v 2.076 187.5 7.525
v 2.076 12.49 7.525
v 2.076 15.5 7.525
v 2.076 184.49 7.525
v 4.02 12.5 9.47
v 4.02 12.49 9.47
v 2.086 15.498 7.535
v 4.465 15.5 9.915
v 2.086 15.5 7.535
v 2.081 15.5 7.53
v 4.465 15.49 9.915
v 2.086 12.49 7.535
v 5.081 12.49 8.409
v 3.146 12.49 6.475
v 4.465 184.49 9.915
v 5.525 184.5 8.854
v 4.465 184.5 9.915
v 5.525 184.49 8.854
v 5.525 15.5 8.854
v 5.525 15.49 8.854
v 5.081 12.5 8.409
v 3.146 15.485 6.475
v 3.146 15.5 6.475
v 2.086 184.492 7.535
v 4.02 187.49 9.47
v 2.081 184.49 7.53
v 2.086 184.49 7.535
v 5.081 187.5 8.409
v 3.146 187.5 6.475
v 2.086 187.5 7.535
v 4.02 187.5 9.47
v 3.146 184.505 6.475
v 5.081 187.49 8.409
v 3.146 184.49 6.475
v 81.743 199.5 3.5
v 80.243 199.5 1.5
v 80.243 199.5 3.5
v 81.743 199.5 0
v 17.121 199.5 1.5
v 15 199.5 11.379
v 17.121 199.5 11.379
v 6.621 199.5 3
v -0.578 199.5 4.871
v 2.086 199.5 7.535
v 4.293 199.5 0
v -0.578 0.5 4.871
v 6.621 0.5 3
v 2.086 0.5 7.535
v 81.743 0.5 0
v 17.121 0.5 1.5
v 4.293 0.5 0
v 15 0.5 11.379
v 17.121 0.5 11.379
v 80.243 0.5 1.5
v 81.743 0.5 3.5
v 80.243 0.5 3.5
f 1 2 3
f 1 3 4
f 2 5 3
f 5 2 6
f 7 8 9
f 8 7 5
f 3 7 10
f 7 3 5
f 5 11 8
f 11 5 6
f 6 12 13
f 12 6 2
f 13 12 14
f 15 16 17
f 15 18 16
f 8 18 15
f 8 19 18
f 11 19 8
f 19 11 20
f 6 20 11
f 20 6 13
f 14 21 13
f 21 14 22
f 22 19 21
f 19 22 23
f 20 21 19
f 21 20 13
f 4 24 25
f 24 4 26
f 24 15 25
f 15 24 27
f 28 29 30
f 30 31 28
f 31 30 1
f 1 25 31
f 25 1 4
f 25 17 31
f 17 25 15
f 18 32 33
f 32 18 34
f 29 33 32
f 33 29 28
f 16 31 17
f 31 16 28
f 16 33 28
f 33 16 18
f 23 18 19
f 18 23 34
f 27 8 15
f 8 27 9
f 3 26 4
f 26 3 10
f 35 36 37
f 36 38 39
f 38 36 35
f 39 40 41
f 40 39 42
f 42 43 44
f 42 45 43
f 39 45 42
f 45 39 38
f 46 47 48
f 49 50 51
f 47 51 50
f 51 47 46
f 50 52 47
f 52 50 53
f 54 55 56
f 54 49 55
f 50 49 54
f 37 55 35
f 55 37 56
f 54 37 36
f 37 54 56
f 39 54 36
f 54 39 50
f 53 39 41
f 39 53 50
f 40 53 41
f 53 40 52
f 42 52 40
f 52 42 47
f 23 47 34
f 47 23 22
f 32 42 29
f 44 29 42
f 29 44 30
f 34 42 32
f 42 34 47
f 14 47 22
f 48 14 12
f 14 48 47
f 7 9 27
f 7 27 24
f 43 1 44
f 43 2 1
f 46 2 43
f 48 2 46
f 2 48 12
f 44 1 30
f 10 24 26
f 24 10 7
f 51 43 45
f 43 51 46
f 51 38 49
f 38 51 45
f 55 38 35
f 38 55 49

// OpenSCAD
// Arquivo gerado automaticamente
// =========================================================
// MODO DE VISUALIZAÇÃO E IMPRESSÃO
// =========================================================
modo_impressao = true; // true = Sólido de impressão limpo, false = Wireframe de debug
comprimento = 200; // Comprimento total da peça em mm (ex: 300 = 30cm, 200 = 20cm)

y_ini = 0.5;
y_fim = comprimento - 0.5;
y_clip_ini = 12.5;                    // Início da transição do clipe (fixo, perto da borda)
y_clip_fim = comprimento - 12.5;      // Fim da transição do clipe (espelhado)
y_clip_reto_ini = 15.5;               // Início do miolo reto do clipe
y_clip_reto_fim = comprimento - 15.5; // Fim do miolo reto do clipe

pontos = [
  // [0, 1] Ponta esquerda extrema (Vermelho)
  [0.4216, y_ini, 4.3713],
  [0.4216, y_fim, 4.3713],
  // [2, 3] Base interna (Verde)
  [4.2929, y_ini, 0.5000],
  [4.2929, y_fim, 0.5000],
  // [4, 5] Base externa (Azul)
  [81.7426, y_ini, 0.5000],
  [81.7426, y_fim, 0.5000],
  // [6, 7] Lábio externo topo (Amarelo)
  [81.7426, y_ini, 2.0000],
  [81.7426, y_fim, 2.0000],
  // [8, 9] Lábio externo base (Magenta)
  [80.2426, y_ini, 2.0000],
  [80.2426, y_fim, 2.0000],
  // [10, 11] Chanfro externo topo (Azul Claro / Cyan)
  [78.2071, y_ini, 5.5355],
  [78.2071, y_fim, 5.5355],
  // [12, 13] Chanfro externo plano (Laranja)
  [76.7071, y_ini, 5.5355],
  [76.7071, y_fim, 5.5355],
  // [14, 15] Parede vertical base (Roxo)
  [17.1213, y_ini, 2.0000],
  [17.1213, y_fim, 2.0000],
  // [16, 17] Parede vertical topo (exterior) (Marrom)
  [17.1213, y_ini, 11.8787],
  [17.1213, y_fim, 11.8787],
  // [18, 19] Parede vertical topo (interior / início da rampa) (Pink)
  [15.0000, y_ini, 11.8787],
  [15.0000, y_fim, 11.8787],
  // [20, 21] Clip face de encaixe (base do dente) (Lime)
  [6.5355, y_clip_reto_ini, 8.3640],
  [6.5355, y_clip_reto_fim, 8.3640],
  // [22, 23] Clip face de encaixe (topo do dente) (Navy)
  [5.4749, y_clip_reto_ini, 9.4246],
  [5.4749, y_clip_reto_fim, 9.4246],
  // [24, 25] Transição do Clip (Gold)
  [4.5910, y_clip_ini, 6.4194],
  [4.5910, y_clip_fim, 6.4194],
  // [26, 27] Transição do Clip (Teal)
  [3.5303, y_clip_ini, 7.4801],
  [3.5303, y_clip_fim, 7.4801],
  // [28, 29] Transição do Clip (Maroon)
  [2.6464, y_clip_ini, 4.4749],
  [2.6464, y_clip_fim, 4.4749],
  // [30, 31] Pé da rampa (Olive)
  [5.1213, y_ini, 2.0000],
  [5.1213, y_fim, 2.0000],
  // [32, 33, 34, 35] Chanfro interno topo (Black)
  [1.5858, y_ini, 5.5355],
  [1.5858, y_clip_ini, 5.5355],
  [1.5858, y_clip_fim, 5.5355],
  [1.5858, y_fim, 5.5355],

  // NOVOS PONTOS PARA A CAVA DO ACRÍLICO (PAREDE DIREITA RETA)
  // [36, 37] Parede Direita - Topo Externo
  [81.7426, y_ini, 4.0000],
  [81.7426, y_fim, 4.0000],
  // [38, 39] Parede Direita - Topo Interno
  [80.2426, y_ini, 4.0000],
  [80.2426, y_fim, 4.0000],
];

// =========================================================
// DEFINIÇÃO DE MÓDULOS (OpenSCAD exige que módulos fiquem fora de if/else)
// =========================================================

module objeto_final_impressao(tol_clip = 0, aumento_diag = 0, aumento_rampa = 0, cor_corpo = "LightGray", cor_clipe = "HotPink") {
    function aplicar_tolerancia(p, t) = [
        [p[0][0] + t * 0.7071, p[0][1] - t * 0.7071], // Maroon 
        p[1],                                         // Black 
        p[2],                                         // Navy/Teal 
        [p[3][0] + t * 0.7071, p[3][1] - t * 0.7071]  // Lime/Gold 
    ];

    module cunha_transicao(y_start, y_end, p1, p2) {
        hull() {
            translate([0, y_start, 0]) rotate([90, 0, 0]) linear_extrude(0.01) polygon(aplicar_tolerancia(p1, tol_clip));
            translate([0, y_end, 0]) rotate([90, 0, 0]) linear_extrude(0.01) polygon(aplicar_tolerancia(p2, tol_clip));
        }
    }

    translate([0, 0, -0.5]) 
    union() {
        // 1. CORPO PRINCIPAL (Extrusão do perfil frontal)
        // O retângulo base é esticado e engrossado movendo Red e Black na diagonal
        perfil_xy = [
            [pontos[0][0] - aumento_diag, pontos[0][2] + aumento_diag],   // 0: Red
            [pontos[2][0], pontos[2][2]],               // 2: Green (fixo)
            [pontos[4][0], pontos[4][2]],               // 4: Blue
            [pontos[36][0], pontos[36][2]], // 36: Parede dir topo ext 
            [pontos[38][0], pontos[38][2]], // 38: Parede dir topo int 
            [pontos[8][0], pontos[8][2]],   // 8: Magenta 
            [pontos[14][0], pontos[14][2]], // 14: Purple 
            [pontos[16][0], pontos[16][2]], // 16: Brown 
            [pontos[18][0], pontos[18][2]], // 18: Pink
            [pontos[30][0] + aumento_rampa, pontos[30][2] + aumento_rampa], // 30: Olive (Move na diagonal oposta para engrossar a rampa)
            [pontos[32][0] - aumento_diag + aumento_rampa, pontos[32][2] + aumento_diag + aumento_rampa]  // 32: Black (Soma os dois movimentos)
        ];

        color(cor_corpo) {
            translate([0, y_fim, 0]) rotate([90, 0, 0]) linear_extrude(height = y_fim - y_ini) polygon(perfil_xy);
        }
        
        // 2. O CLIPE
        // O topo do clipe (Navy, Lime) acompanha apenas o alargamento base (aumento_diag)
        // O buraco e a base (Maroon, Black, Teal, Gold) acompanham também a rampa (aumento_rampa)
        // Isso encurta o clipe em exatos `aumento_rampa`!
        
        dx_base = -aumento_diag + aumento_rampa;
        dz_base = aumento_diag + aumento_rampa;
        
        dx_topo = -aumento_diag;
        dz_topo = aumento_diag;

        perfil_transicao = [
            [2.6464 + dx_base, 4.4749 + dz_base], // Maroon
            [1.5858 + dx_base, 5.5355 + dz_base], // Black
            [3.5303 + dx_base, 7.4801 + dz_base], // Teal
            [4.5910 + dx_base, 6.4194 + dz_base]  // Gold
        ];
        
        perfil_topo = [
            [2.6464 + dx_base, 4.4749 + dz_base], // Projeção Maroon na rampa
            [1.5858 + dx_base, 5.5355 + dz_base], // Projeção Black na rampa
            [5.4749 + dx_topo, 9.4246 + dz_topo], // Navy
            [6.5355 + dx_topo, 8.3640 + dz_topo]  // Lime
        ];

        color(cor_clipe) {
            // Como as coordenadas já foram transladadas, fazemos apenas o ajuste anti-non-manifold
            // Deslizando levemente na parede externa
            translate([-0.01, 0, -0.01]) {
                cunha_transicao(y_clip_ini, y_clip_reto_ini, perfil_transicao, perfil_topo);
                cunha_transicao(y_clip_fim, y_clip_reto_fim, perfil_transicao, perfil_topo); // Cunhas espelhadas

          // Miolo do clipe
          translate([0, y_clip_reto_fim, 0])
            rotate([90, 0, 0])
              linear_extrude(height = y_clip_reto_fim - y_clip_reto_ini) {
                polygon(aplicar_tolerancia(perfil_topo, tol_clip));
              }
        }
      }
    }
}

module desenhar_arestas(lista_pares) {
  for (par = lista_pares) {
    hull() {
      translate(pontos[par[0]]) sphere(r=0.2);
      translate(pontos[par[1]]) sphere(r=0.2);
    }
  }
}

module ligar_pontos_longitudinais(pts) {
  for (i = [0:len(pts) - 2]) {
    if (abs(pts[i][0] - pts[i + 1][0]) < 0.001 && abs(pts[i][2] - pts[i + 1][2]) < 0.001) {
      hull() {
        translate(pontos[i]) sphere(r=0.15);
        translate(pontos[i + 1]) sphere(r=0.15);
      }
    }
  }
}

// =========================================================
// RENDERIZAÇÃO
// =========================================================

if (modo_impressao) {
    // Renderiza a peça com o movimento diagonal base (1.0) e o engrossamento da rampa (1.5)
    objeto_final_impressao(0, 1.0, 1.5);


} else {
  cores_perfil = [
    "Red",
    "Green",
    "Blue",
    "Yellow",
    "Magenta",
    "Cyan",
    "Orange",
    "Purple",
    "Brown",
    "Pink",
    "Lime",
    "Navy",
    "Gold",
    "Teal",
    "Maroon",
    "Olive",
    "Black",
  ];

  translate([0, 0, -0.5]) {
    for (i = [0:len(pontos) - 1]) {
      if (i % 2 == 0 && i <= 32) {
        color(cores_perfil[i / 2]) translate(pontos[i]) sphere(r=0.5);
      } else {
        color("LightBlue") translate(pontos[i]) sphere(r=0.3);
      }
    }

    ligacoes_frente = [
      [2, 4],
      [10, 6],
      [10, 12],
      [12, 8],
      [6, 4],
      [8, 14],
      [14, 16],
      [16, 18],
      [18, 30],
      [30, 32],
      [32, 0],
      [0, 2],
      [24, 20],
      [20, 22],
      [22, 26],
      [24, 28],
      [28, 33],
      [33, 26],
    ];

    ligacoes_tras = [
      [3, 5],
      [11, 7],
      [11, 13],
      [13, 9],
      [7, 5],
      [9, 15],
      [15, 17],
      [17, 19],
      [19, 31],
      [31, 35],
      [35, 1],
      [1, 3],
      [25, 21],
      [21, 23],
      [23, 27],
      [25, 29],
      [29, 34],
      [34, 27],
    ];

    color("White") {
      desenhar_arestas(ligacoes_frente);
      desenhar_arestas(ligacoes_tras);
    }

    color("Red") ligar_pontos_longitudinais(pontos);
  }
}
